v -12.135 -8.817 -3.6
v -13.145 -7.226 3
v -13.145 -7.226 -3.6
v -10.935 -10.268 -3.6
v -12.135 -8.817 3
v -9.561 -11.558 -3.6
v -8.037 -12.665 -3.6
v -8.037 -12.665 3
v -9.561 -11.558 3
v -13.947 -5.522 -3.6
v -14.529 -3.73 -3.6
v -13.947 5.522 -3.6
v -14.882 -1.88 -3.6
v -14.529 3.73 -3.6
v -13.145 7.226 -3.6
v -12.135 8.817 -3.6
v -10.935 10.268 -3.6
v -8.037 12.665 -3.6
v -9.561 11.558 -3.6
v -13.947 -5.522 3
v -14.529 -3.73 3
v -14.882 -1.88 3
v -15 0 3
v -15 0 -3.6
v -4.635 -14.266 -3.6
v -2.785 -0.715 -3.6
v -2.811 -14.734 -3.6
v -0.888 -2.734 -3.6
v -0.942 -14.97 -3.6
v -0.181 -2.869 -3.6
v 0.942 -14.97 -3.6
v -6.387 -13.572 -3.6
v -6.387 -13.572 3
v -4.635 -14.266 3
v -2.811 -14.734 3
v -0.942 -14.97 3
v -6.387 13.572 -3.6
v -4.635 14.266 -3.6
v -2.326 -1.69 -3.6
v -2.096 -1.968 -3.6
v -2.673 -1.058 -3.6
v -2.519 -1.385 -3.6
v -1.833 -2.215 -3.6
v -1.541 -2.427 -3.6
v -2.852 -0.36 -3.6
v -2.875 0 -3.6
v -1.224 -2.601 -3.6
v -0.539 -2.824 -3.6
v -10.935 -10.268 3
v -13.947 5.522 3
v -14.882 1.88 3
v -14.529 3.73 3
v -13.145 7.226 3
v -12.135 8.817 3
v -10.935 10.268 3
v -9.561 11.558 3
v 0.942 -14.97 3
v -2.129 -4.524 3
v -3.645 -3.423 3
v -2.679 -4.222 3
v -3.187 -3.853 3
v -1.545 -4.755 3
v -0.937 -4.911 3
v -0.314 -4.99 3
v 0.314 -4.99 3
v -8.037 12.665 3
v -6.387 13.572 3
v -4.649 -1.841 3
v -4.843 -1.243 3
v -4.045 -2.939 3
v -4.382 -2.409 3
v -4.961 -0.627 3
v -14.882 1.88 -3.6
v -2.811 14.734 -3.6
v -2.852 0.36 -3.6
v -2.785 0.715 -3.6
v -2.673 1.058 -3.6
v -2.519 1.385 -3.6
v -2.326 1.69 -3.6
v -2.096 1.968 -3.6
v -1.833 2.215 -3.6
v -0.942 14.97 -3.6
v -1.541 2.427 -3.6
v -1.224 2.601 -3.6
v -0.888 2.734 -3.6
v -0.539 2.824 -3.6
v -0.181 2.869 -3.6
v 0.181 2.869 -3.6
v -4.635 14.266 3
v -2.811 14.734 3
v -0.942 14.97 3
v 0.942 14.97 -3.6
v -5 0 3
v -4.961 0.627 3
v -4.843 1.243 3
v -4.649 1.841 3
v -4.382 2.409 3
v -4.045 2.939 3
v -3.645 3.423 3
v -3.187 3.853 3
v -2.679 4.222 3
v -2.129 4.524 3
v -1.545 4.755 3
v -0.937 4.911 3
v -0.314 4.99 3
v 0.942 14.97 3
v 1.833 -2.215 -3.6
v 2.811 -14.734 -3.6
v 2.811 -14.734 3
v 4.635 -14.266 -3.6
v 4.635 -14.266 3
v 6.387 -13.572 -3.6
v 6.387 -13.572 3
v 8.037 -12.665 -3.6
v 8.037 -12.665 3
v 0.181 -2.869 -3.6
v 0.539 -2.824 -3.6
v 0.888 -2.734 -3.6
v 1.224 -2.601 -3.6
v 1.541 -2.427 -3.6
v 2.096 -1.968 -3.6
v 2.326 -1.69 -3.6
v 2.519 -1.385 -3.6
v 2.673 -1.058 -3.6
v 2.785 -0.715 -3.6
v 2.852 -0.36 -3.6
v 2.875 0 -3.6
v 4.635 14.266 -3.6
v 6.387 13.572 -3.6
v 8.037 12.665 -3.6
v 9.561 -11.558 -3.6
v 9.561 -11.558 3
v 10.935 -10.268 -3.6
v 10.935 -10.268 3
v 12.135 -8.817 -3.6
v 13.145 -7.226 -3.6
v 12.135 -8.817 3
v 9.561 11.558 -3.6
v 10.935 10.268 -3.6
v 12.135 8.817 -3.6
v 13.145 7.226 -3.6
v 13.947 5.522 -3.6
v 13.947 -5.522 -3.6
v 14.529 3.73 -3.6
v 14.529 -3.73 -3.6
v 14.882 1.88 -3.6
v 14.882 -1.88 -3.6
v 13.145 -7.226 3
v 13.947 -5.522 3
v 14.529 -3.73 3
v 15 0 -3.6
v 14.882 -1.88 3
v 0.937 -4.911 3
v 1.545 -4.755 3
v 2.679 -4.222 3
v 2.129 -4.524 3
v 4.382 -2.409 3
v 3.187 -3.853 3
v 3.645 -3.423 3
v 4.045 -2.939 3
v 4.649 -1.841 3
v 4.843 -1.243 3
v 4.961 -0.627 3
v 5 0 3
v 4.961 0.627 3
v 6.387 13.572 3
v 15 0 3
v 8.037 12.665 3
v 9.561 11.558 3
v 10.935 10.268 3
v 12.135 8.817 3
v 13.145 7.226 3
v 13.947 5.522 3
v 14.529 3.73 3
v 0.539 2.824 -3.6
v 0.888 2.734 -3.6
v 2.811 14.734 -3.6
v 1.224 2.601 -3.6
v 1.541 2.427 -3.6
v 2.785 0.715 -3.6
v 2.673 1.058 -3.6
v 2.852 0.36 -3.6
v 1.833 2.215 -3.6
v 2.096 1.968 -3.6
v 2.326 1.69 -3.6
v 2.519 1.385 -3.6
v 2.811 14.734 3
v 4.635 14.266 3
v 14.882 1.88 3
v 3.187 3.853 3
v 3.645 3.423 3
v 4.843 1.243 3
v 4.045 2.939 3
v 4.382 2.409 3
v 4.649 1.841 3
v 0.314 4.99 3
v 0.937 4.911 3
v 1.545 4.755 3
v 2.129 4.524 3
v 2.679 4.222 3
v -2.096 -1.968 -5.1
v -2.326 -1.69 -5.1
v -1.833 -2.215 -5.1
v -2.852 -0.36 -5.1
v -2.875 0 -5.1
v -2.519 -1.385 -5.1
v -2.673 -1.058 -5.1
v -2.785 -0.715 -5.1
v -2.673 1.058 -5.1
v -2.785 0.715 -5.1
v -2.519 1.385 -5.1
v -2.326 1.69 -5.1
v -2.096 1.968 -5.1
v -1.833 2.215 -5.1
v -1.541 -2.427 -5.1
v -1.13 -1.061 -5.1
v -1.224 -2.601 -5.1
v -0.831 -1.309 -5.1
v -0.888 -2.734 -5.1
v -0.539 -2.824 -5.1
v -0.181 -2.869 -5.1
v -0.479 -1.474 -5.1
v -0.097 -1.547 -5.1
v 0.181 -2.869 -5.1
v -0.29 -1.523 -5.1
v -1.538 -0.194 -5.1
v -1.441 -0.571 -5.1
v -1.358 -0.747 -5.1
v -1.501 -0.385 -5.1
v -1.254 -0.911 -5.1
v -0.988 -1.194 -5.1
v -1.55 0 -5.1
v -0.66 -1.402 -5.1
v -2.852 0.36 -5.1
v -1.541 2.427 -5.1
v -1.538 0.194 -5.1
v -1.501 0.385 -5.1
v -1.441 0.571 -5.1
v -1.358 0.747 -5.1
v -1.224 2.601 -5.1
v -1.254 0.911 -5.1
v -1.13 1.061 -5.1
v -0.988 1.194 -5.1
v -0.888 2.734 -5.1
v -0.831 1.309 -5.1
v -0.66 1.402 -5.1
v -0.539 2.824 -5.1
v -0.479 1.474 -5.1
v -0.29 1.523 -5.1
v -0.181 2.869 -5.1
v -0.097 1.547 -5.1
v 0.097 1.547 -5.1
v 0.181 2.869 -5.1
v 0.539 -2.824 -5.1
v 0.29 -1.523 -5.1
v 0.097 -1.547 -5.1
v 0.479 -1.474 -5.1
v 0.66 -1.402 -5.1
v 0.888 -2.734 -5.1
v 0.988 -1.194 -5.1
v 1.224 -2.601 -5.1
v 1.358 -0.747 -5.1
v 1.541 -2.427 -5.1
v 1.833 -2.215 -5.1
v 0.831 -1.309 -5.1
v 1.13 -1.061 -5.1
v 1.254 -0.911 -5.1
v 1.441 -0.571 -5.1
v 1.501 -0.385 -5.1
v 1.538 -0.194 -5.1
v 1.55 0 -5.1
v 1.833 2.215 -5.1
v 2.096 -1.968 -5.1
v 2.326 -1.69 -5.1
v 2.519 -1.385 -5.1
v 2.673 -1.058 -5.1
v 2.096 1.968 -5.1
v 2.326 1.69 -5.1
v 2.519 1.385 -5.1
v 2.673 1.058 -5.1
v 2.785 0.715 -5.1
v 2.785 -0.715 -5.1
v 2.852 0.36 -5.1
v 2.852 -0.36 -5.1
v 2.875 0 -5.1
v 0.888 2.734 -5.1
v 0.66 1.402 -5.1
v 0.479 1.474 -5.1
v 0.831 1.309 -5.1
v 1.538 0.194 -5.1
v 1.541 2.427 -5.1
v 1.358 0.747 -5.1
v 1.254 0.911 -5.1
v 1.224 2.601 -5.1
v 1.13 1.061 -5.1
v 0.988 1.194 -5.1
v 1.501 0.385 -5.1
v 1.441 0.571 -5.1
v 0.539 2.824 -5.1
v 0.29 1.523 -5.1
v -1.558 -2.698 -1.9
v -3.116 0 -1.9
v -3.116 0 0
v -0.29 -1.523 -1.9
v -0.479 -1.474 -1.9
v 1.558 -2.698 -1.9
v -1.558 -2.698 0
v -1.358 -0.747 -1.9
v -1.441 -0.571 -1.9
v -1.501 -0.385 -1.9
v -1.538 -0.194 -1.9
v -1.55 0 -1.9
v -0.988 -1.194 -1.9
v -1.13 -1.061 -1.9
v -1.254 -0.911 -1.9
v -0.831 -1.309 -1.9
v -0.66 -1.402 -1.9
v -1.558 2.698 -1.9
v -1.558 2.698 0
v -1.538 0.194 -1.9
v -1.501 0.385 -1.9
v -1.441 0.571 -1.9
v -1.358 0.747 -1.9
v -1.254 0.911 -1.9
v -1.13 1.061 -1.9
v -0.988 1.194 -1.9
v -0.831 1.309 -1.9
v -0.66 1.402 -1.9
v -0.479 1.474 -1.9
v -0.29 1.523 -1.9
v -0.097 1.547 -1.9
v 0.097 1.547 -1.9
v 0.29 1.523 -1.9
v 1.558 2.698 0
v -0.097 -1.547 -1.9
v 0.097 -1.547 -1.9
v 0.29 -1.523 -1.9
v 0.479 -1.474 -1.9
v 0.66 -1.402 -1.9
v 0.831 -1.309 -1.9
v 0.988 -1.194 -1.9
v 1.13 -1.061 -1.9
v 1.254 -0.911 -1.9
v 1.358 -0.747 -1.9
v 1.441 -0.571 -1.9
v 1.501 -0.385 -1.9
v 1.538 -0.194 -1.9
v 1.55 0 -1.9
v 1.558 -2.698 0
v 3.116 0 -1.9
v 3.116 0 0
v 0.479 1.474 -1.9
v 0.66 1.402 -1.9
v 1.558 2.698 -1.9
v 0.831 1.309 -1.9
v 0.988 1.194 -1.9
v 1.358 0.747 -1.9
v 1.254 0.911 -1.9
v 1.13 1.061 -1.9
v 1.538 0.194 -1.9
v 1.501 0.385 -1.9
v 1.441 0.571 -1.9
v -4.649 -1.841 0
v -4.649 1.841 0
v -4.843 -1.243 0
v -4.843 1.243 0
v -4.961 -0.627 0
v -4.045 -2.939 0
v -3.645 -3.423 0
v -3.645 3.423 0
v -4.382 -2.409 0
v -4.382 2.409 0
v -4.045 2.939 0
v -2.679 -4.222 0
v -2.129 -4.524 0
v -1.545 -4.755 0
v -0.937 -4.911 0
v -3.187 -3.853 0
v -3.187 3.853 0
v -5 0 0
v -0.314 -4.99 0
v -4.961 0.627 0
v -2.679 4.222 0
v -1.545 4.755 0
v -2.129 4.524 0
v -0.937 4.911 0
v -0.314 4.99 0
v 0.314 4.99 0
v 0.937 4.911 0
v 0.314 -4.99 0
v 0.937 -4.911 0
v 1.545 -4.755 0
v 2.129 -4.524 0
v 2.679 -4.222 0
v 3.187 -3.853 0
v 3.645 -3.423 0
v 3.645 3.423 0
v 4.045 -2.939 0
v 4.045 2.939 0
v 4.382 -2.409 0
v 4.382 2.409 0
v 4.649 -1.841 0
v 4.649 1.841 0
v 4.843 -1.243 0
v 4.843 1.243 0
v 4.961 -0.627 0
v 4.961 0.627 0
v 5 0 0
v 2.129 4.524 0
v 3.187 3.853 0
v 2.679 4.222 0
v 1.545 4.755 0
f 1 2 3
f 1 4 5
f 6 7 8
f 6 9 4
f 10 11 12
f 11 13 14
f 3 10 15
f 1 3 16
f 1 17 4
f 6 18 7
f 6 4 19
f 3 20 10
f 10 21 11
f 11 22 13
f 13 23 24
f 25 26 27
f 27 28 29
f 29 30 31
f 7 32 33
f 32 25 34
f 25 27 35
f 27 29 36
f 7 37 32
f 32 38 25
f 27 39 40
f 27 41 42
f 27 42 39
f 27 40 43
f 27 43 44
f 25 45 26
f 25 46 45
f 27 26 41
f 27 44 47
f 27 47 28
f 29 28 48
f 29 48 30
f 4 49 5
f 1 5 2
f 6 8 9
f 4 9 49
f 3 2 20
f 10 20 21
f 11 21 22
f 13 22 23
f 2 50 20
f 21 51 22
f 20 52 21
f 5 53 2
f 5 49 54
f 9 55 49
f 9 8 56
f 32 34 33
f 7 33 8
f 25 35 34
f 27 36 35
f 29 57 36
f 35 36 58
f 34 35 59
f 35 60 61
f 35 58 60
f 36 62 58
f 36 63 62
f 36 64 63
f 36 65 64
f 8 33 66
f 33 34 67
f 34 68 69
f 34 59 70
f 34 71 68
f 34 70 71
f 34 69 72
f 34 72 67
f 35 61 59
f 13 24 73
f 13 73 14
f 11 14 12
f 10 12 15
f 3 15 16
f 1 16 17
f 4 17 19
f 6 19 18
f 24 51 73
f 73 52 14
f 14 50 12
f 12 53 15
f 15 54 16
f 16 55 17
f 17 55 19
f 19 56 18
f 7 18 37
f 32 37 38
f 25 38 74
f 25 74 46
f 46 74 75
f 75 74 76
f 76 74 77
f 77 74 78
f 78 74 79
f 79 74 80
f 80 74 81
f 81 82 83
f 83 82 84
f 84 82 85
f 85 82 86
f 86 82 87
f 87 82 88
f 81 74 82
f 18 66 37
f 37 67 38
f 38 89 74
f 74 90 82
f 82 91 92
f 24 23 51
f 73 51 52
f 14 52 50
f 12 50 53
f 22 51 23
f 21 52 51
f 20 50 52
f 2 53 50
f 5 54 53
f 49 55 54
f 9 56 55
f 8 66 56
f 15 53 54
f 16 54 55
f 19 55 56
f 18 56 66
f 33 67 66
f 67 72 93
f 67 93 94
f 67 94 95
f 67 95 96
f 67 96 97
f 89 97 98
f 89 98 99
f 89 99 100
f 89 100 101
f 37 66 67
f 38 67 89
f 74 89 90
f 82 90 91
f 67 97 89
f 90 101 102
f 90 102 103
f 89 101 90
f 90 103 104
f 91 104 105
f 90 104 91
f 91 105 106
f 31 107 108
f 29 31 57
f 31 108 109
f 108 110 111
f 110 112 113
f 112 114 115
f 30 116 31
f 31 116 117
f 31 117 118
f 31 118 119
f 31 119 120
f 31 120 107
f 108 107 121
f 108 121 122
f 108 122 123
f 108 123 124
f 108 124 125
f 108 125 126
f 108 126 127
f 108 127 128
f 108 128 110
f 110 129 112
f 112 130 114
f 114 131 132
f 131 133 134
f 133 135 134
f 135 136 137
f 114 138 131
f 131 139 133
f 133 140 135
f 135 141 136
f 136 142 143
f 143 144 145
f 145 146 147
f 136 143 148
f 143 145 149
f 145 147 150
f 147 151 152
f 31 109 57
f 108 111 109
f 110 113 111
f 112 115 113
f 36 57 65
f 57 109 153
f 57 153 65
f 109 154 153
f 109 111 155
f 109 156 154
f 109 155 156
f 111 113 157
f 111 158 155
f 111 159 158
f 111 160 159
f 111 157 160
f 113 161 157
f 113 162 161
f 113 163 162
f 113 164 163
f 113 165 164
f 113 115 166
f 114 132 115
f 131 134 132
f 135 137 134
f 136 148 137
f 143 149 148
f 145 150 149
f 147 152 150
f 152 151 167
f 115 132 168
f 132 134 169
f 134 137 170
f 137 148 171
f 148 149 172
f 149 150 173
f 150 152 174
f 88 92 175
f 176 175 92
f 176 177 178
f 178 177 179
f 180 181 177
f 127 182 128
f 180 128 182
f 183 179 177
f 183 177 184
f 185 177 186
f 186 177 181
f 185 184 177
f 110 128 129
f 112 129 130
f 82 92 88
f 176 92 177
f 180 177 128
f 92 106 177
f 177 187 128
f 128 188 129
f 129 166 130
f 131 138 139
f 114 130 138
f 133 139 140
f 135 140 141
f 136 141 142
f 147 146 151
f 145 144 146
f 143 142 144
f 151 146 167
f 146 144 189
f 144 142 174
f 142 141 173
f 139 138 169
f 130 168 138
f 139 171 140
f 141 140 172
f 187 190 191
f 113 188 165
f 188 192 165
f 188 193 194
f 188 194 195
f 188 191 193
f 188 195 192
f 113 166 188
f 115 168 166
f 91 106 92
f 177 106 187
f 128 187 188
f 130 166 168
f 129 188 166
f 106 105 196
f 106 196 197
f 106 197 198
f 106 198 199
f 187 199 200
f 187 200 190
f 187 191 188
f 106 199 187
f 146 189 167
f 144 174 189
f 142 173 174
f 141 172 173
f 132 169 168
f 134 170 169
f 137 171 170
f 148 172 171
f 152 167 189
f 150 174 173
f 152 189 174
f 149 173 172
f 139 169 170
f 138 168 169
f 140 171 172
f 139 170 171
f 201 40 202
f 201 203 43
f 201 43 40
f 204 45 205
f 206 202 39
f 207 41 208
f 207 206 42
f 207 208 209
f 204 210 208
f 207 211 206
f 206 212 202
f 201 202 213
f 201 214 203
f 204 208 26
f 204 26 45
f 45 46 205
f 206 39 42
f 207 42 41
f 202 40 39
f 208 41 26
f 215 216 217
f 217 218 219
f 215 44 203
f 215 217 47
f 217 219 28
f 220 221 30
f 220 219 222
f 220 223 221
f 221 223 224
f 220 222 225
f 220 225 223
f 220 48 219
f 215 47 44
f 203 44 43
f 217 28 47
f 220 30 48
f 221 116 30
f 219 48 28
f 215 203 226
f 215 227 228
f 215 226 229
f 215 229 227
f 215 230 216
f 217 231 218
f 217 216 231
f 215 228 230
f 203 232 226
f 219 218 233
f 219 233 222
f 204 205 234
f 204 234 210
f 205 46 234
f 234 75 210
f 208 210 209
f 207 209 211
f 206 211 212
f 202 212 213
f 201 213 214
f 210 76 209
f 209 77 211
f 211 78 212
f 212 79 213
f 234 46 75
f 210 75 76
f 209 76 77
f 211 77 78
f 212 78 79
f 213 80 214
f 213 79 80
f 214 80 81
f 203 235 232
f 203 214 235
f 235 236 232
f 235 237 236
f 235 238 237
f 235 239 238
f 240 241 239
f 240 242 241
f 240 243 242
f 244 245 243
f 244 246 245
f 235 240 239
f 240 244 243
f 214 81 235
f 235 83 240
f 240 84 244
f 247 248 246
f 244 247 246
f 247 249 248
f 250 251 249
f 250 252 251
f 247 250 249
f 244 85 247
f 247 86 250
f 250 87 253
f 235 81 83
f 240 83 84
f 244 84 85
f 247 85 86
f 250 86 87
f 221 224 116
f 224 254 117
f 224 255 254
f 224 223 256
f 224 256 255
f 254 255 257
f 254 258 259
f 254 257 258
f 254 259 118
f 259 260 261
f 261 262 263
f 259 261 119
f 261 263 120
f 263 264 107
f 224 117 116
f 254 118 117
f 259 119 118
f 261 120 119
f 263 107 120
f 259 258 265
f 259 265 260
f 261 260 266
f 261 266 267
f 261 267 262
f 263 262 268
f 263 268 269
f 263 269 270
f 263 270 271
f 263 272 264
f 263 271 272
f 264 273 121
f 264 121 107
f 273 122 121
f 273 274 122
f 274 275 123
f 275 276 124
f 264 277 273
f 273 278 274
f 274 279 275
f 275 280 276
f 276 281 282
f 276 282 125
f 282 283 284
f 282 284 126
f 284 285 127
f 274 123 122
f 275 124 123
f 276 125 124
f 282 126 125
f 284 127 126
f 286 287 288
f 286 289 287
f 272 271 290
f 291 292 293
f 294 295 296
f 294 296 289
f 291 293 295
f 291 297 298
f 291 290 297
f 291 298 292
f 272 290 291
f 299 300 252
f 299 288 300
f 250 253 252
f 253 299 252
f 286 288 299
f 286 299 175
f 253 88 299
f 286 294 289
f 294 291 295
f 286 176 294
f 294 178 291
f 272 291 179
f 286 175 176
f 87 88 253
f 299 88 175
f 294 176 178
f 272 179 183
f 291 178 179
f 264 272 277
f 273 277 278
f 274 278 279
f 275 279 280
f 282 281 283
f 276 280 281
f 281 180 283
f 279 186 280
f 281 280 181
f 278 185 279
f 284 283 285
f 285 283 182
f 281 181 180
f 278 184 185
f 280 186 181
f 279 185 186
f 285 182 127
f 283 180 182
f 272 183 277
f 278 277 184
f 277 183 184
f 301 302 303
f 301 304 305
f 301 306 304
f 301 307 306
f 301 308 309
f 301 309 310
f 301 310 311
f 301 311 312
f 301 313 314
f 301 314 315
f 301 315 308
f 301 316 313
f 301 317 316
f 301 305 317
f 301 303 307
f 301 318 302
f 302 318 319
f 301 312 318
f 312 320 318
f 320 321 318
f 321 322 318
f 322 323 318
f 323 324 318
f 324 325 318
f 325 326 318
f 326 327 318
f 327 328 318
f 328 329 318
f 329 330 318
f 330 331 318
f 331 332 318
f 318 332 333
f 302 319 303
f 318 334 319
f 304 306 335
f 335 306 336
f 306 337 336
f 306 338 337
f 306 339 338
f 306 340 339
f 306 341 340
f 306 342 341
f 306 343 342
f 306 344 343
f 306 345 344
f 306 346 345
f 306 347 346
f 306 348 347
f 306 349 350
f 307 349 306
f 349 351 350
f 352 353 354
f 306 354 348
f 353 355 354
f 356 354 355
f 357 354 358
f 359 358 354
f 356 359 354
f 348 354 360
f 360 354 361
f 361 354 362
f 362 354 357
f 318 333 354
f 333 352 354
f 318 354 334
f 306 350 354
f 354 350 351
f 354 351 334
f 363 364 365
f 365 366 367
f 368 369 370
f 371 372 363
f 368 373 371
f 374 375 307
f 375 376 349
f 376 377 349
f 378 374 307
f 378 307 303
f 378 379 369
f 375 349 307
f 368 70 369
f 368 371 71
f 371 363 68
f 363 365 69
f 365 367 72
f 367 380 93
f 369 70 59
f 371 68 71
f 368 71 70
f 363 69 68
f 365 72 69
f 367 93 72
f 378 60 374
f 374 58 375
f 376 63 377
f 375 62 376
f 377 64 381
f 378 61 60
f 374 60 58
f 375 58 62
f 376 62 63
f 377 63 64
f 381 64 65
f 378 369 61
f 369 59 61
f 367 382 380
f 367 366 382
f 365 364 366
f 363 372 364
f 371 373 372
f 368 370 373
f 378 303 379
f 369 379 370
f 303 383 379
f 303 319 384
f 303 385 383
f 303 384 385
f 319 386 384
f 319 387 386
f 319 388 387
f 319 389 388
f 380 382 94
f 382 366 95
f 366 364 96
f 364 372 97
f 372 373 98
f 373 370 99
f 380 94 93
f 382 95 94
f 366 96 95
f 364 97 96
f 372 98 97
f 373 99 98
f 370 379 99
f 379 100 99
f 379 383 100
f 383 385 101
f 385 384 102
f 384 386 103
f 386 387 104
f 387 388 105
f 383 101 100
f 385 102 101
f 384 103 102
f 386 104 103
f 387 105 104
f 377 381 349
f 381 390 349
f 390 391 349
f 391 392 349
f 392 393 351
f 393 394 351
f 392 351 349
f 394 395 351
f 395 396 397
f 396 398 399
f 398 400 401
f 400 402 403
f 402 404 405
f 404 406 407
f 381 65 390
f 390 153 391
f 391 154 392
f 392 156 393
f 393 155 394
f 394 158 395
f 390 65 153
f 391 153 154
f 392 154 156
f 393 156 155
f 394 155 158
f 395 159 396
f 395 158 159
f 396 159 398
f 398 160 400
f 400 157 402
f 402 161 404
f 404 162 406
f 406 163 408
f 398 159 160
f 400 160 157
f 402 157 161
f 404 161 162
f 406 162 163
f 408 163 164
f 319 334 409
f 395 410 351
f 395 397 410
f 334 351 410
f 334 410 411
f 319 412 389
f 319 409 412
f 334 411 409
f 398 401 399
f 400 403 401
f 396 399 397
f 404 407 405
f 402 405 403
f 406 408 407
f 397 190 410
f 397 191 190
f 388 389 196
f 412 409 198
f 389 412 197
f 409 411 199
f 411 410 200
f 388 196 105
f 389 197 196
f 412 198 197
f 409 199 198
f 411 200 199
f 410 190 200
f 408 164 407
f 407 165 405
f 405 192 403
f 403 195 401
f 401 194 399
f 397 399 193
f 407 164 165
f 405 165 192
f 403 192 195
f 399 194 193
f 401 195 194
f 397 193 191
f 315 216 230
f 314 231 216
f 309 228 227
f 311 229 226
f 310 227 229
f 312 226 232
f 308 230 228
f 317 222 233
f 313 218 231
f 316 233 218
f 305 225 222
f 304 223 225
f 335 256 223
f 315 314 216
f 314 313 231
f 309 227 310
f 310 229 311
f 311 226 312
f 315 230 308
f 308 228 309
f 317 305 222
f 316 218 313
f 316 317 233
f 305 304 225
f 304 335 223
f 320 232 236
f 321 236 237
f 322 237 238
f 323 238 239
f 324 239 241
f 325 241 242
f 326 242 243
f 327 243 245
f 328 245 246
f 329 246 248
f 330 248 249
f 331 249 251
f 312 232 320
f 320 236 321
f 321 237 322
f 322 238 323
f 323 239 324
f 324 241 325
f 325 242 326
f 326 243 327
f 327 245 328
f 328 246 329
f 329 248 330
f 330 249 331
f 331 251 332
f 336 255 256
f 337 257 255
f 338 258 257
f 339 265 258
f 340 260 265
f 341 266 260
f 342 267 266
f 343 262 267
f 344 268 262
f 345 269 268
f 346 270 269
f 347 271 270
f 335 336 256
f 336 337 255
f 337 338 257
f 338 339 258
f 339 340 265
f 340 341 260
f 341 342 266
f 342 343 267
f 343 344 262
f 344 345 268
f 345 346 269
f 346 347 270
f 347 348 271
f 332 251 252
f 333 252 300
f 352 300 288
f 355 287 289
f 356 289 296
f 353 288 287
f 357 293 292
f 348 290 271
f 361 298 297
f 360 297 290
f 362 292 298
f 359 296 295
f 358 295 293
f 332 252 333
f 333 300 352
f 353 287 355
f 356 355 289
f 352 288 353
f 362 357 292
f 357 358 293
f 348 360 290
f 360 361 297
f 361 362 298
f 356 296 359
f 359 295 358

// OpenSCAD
$fn = 50;


difference() {
	union() {
		translate(v = [0, 0, -3.6000000000]) {
			cylinder(h = 6.6000000000, r = 15.0000000000);
		}
		#translate(v = [0, 0, -5.1000000000]) {
			cylinder(h = 5.1000000000, r = 2.8750000000);
		}
	}
	union() {
		translate(v = [0, 0, 0]) {
			rotate(a = [0, 0, 0]) {
				difference() {
					union() {
						translate(v = [0, 0, -1.9000000000]) {
							linear_extrude(height = 1.9000000000) {
								polygon(points = [[3.1158000000, 0.0000000000], [1.5579000000, 2.6983619531], [-1.5579000000, 2.6983619531], [-3.1158000000, 0.0000000000], [-1.5579000000, -2.6983619531], [1.5579000000, -2.6983619531]]);
							}
						}
					}
					union();
				}
			}
		}
		#cylinder(h = 3, r = 5.0000000000);
		#translate(v = [0, 0, -100.0000000000]) {
			cylinder(h = 200, r = 1.5500000000);
		}
	}
}
